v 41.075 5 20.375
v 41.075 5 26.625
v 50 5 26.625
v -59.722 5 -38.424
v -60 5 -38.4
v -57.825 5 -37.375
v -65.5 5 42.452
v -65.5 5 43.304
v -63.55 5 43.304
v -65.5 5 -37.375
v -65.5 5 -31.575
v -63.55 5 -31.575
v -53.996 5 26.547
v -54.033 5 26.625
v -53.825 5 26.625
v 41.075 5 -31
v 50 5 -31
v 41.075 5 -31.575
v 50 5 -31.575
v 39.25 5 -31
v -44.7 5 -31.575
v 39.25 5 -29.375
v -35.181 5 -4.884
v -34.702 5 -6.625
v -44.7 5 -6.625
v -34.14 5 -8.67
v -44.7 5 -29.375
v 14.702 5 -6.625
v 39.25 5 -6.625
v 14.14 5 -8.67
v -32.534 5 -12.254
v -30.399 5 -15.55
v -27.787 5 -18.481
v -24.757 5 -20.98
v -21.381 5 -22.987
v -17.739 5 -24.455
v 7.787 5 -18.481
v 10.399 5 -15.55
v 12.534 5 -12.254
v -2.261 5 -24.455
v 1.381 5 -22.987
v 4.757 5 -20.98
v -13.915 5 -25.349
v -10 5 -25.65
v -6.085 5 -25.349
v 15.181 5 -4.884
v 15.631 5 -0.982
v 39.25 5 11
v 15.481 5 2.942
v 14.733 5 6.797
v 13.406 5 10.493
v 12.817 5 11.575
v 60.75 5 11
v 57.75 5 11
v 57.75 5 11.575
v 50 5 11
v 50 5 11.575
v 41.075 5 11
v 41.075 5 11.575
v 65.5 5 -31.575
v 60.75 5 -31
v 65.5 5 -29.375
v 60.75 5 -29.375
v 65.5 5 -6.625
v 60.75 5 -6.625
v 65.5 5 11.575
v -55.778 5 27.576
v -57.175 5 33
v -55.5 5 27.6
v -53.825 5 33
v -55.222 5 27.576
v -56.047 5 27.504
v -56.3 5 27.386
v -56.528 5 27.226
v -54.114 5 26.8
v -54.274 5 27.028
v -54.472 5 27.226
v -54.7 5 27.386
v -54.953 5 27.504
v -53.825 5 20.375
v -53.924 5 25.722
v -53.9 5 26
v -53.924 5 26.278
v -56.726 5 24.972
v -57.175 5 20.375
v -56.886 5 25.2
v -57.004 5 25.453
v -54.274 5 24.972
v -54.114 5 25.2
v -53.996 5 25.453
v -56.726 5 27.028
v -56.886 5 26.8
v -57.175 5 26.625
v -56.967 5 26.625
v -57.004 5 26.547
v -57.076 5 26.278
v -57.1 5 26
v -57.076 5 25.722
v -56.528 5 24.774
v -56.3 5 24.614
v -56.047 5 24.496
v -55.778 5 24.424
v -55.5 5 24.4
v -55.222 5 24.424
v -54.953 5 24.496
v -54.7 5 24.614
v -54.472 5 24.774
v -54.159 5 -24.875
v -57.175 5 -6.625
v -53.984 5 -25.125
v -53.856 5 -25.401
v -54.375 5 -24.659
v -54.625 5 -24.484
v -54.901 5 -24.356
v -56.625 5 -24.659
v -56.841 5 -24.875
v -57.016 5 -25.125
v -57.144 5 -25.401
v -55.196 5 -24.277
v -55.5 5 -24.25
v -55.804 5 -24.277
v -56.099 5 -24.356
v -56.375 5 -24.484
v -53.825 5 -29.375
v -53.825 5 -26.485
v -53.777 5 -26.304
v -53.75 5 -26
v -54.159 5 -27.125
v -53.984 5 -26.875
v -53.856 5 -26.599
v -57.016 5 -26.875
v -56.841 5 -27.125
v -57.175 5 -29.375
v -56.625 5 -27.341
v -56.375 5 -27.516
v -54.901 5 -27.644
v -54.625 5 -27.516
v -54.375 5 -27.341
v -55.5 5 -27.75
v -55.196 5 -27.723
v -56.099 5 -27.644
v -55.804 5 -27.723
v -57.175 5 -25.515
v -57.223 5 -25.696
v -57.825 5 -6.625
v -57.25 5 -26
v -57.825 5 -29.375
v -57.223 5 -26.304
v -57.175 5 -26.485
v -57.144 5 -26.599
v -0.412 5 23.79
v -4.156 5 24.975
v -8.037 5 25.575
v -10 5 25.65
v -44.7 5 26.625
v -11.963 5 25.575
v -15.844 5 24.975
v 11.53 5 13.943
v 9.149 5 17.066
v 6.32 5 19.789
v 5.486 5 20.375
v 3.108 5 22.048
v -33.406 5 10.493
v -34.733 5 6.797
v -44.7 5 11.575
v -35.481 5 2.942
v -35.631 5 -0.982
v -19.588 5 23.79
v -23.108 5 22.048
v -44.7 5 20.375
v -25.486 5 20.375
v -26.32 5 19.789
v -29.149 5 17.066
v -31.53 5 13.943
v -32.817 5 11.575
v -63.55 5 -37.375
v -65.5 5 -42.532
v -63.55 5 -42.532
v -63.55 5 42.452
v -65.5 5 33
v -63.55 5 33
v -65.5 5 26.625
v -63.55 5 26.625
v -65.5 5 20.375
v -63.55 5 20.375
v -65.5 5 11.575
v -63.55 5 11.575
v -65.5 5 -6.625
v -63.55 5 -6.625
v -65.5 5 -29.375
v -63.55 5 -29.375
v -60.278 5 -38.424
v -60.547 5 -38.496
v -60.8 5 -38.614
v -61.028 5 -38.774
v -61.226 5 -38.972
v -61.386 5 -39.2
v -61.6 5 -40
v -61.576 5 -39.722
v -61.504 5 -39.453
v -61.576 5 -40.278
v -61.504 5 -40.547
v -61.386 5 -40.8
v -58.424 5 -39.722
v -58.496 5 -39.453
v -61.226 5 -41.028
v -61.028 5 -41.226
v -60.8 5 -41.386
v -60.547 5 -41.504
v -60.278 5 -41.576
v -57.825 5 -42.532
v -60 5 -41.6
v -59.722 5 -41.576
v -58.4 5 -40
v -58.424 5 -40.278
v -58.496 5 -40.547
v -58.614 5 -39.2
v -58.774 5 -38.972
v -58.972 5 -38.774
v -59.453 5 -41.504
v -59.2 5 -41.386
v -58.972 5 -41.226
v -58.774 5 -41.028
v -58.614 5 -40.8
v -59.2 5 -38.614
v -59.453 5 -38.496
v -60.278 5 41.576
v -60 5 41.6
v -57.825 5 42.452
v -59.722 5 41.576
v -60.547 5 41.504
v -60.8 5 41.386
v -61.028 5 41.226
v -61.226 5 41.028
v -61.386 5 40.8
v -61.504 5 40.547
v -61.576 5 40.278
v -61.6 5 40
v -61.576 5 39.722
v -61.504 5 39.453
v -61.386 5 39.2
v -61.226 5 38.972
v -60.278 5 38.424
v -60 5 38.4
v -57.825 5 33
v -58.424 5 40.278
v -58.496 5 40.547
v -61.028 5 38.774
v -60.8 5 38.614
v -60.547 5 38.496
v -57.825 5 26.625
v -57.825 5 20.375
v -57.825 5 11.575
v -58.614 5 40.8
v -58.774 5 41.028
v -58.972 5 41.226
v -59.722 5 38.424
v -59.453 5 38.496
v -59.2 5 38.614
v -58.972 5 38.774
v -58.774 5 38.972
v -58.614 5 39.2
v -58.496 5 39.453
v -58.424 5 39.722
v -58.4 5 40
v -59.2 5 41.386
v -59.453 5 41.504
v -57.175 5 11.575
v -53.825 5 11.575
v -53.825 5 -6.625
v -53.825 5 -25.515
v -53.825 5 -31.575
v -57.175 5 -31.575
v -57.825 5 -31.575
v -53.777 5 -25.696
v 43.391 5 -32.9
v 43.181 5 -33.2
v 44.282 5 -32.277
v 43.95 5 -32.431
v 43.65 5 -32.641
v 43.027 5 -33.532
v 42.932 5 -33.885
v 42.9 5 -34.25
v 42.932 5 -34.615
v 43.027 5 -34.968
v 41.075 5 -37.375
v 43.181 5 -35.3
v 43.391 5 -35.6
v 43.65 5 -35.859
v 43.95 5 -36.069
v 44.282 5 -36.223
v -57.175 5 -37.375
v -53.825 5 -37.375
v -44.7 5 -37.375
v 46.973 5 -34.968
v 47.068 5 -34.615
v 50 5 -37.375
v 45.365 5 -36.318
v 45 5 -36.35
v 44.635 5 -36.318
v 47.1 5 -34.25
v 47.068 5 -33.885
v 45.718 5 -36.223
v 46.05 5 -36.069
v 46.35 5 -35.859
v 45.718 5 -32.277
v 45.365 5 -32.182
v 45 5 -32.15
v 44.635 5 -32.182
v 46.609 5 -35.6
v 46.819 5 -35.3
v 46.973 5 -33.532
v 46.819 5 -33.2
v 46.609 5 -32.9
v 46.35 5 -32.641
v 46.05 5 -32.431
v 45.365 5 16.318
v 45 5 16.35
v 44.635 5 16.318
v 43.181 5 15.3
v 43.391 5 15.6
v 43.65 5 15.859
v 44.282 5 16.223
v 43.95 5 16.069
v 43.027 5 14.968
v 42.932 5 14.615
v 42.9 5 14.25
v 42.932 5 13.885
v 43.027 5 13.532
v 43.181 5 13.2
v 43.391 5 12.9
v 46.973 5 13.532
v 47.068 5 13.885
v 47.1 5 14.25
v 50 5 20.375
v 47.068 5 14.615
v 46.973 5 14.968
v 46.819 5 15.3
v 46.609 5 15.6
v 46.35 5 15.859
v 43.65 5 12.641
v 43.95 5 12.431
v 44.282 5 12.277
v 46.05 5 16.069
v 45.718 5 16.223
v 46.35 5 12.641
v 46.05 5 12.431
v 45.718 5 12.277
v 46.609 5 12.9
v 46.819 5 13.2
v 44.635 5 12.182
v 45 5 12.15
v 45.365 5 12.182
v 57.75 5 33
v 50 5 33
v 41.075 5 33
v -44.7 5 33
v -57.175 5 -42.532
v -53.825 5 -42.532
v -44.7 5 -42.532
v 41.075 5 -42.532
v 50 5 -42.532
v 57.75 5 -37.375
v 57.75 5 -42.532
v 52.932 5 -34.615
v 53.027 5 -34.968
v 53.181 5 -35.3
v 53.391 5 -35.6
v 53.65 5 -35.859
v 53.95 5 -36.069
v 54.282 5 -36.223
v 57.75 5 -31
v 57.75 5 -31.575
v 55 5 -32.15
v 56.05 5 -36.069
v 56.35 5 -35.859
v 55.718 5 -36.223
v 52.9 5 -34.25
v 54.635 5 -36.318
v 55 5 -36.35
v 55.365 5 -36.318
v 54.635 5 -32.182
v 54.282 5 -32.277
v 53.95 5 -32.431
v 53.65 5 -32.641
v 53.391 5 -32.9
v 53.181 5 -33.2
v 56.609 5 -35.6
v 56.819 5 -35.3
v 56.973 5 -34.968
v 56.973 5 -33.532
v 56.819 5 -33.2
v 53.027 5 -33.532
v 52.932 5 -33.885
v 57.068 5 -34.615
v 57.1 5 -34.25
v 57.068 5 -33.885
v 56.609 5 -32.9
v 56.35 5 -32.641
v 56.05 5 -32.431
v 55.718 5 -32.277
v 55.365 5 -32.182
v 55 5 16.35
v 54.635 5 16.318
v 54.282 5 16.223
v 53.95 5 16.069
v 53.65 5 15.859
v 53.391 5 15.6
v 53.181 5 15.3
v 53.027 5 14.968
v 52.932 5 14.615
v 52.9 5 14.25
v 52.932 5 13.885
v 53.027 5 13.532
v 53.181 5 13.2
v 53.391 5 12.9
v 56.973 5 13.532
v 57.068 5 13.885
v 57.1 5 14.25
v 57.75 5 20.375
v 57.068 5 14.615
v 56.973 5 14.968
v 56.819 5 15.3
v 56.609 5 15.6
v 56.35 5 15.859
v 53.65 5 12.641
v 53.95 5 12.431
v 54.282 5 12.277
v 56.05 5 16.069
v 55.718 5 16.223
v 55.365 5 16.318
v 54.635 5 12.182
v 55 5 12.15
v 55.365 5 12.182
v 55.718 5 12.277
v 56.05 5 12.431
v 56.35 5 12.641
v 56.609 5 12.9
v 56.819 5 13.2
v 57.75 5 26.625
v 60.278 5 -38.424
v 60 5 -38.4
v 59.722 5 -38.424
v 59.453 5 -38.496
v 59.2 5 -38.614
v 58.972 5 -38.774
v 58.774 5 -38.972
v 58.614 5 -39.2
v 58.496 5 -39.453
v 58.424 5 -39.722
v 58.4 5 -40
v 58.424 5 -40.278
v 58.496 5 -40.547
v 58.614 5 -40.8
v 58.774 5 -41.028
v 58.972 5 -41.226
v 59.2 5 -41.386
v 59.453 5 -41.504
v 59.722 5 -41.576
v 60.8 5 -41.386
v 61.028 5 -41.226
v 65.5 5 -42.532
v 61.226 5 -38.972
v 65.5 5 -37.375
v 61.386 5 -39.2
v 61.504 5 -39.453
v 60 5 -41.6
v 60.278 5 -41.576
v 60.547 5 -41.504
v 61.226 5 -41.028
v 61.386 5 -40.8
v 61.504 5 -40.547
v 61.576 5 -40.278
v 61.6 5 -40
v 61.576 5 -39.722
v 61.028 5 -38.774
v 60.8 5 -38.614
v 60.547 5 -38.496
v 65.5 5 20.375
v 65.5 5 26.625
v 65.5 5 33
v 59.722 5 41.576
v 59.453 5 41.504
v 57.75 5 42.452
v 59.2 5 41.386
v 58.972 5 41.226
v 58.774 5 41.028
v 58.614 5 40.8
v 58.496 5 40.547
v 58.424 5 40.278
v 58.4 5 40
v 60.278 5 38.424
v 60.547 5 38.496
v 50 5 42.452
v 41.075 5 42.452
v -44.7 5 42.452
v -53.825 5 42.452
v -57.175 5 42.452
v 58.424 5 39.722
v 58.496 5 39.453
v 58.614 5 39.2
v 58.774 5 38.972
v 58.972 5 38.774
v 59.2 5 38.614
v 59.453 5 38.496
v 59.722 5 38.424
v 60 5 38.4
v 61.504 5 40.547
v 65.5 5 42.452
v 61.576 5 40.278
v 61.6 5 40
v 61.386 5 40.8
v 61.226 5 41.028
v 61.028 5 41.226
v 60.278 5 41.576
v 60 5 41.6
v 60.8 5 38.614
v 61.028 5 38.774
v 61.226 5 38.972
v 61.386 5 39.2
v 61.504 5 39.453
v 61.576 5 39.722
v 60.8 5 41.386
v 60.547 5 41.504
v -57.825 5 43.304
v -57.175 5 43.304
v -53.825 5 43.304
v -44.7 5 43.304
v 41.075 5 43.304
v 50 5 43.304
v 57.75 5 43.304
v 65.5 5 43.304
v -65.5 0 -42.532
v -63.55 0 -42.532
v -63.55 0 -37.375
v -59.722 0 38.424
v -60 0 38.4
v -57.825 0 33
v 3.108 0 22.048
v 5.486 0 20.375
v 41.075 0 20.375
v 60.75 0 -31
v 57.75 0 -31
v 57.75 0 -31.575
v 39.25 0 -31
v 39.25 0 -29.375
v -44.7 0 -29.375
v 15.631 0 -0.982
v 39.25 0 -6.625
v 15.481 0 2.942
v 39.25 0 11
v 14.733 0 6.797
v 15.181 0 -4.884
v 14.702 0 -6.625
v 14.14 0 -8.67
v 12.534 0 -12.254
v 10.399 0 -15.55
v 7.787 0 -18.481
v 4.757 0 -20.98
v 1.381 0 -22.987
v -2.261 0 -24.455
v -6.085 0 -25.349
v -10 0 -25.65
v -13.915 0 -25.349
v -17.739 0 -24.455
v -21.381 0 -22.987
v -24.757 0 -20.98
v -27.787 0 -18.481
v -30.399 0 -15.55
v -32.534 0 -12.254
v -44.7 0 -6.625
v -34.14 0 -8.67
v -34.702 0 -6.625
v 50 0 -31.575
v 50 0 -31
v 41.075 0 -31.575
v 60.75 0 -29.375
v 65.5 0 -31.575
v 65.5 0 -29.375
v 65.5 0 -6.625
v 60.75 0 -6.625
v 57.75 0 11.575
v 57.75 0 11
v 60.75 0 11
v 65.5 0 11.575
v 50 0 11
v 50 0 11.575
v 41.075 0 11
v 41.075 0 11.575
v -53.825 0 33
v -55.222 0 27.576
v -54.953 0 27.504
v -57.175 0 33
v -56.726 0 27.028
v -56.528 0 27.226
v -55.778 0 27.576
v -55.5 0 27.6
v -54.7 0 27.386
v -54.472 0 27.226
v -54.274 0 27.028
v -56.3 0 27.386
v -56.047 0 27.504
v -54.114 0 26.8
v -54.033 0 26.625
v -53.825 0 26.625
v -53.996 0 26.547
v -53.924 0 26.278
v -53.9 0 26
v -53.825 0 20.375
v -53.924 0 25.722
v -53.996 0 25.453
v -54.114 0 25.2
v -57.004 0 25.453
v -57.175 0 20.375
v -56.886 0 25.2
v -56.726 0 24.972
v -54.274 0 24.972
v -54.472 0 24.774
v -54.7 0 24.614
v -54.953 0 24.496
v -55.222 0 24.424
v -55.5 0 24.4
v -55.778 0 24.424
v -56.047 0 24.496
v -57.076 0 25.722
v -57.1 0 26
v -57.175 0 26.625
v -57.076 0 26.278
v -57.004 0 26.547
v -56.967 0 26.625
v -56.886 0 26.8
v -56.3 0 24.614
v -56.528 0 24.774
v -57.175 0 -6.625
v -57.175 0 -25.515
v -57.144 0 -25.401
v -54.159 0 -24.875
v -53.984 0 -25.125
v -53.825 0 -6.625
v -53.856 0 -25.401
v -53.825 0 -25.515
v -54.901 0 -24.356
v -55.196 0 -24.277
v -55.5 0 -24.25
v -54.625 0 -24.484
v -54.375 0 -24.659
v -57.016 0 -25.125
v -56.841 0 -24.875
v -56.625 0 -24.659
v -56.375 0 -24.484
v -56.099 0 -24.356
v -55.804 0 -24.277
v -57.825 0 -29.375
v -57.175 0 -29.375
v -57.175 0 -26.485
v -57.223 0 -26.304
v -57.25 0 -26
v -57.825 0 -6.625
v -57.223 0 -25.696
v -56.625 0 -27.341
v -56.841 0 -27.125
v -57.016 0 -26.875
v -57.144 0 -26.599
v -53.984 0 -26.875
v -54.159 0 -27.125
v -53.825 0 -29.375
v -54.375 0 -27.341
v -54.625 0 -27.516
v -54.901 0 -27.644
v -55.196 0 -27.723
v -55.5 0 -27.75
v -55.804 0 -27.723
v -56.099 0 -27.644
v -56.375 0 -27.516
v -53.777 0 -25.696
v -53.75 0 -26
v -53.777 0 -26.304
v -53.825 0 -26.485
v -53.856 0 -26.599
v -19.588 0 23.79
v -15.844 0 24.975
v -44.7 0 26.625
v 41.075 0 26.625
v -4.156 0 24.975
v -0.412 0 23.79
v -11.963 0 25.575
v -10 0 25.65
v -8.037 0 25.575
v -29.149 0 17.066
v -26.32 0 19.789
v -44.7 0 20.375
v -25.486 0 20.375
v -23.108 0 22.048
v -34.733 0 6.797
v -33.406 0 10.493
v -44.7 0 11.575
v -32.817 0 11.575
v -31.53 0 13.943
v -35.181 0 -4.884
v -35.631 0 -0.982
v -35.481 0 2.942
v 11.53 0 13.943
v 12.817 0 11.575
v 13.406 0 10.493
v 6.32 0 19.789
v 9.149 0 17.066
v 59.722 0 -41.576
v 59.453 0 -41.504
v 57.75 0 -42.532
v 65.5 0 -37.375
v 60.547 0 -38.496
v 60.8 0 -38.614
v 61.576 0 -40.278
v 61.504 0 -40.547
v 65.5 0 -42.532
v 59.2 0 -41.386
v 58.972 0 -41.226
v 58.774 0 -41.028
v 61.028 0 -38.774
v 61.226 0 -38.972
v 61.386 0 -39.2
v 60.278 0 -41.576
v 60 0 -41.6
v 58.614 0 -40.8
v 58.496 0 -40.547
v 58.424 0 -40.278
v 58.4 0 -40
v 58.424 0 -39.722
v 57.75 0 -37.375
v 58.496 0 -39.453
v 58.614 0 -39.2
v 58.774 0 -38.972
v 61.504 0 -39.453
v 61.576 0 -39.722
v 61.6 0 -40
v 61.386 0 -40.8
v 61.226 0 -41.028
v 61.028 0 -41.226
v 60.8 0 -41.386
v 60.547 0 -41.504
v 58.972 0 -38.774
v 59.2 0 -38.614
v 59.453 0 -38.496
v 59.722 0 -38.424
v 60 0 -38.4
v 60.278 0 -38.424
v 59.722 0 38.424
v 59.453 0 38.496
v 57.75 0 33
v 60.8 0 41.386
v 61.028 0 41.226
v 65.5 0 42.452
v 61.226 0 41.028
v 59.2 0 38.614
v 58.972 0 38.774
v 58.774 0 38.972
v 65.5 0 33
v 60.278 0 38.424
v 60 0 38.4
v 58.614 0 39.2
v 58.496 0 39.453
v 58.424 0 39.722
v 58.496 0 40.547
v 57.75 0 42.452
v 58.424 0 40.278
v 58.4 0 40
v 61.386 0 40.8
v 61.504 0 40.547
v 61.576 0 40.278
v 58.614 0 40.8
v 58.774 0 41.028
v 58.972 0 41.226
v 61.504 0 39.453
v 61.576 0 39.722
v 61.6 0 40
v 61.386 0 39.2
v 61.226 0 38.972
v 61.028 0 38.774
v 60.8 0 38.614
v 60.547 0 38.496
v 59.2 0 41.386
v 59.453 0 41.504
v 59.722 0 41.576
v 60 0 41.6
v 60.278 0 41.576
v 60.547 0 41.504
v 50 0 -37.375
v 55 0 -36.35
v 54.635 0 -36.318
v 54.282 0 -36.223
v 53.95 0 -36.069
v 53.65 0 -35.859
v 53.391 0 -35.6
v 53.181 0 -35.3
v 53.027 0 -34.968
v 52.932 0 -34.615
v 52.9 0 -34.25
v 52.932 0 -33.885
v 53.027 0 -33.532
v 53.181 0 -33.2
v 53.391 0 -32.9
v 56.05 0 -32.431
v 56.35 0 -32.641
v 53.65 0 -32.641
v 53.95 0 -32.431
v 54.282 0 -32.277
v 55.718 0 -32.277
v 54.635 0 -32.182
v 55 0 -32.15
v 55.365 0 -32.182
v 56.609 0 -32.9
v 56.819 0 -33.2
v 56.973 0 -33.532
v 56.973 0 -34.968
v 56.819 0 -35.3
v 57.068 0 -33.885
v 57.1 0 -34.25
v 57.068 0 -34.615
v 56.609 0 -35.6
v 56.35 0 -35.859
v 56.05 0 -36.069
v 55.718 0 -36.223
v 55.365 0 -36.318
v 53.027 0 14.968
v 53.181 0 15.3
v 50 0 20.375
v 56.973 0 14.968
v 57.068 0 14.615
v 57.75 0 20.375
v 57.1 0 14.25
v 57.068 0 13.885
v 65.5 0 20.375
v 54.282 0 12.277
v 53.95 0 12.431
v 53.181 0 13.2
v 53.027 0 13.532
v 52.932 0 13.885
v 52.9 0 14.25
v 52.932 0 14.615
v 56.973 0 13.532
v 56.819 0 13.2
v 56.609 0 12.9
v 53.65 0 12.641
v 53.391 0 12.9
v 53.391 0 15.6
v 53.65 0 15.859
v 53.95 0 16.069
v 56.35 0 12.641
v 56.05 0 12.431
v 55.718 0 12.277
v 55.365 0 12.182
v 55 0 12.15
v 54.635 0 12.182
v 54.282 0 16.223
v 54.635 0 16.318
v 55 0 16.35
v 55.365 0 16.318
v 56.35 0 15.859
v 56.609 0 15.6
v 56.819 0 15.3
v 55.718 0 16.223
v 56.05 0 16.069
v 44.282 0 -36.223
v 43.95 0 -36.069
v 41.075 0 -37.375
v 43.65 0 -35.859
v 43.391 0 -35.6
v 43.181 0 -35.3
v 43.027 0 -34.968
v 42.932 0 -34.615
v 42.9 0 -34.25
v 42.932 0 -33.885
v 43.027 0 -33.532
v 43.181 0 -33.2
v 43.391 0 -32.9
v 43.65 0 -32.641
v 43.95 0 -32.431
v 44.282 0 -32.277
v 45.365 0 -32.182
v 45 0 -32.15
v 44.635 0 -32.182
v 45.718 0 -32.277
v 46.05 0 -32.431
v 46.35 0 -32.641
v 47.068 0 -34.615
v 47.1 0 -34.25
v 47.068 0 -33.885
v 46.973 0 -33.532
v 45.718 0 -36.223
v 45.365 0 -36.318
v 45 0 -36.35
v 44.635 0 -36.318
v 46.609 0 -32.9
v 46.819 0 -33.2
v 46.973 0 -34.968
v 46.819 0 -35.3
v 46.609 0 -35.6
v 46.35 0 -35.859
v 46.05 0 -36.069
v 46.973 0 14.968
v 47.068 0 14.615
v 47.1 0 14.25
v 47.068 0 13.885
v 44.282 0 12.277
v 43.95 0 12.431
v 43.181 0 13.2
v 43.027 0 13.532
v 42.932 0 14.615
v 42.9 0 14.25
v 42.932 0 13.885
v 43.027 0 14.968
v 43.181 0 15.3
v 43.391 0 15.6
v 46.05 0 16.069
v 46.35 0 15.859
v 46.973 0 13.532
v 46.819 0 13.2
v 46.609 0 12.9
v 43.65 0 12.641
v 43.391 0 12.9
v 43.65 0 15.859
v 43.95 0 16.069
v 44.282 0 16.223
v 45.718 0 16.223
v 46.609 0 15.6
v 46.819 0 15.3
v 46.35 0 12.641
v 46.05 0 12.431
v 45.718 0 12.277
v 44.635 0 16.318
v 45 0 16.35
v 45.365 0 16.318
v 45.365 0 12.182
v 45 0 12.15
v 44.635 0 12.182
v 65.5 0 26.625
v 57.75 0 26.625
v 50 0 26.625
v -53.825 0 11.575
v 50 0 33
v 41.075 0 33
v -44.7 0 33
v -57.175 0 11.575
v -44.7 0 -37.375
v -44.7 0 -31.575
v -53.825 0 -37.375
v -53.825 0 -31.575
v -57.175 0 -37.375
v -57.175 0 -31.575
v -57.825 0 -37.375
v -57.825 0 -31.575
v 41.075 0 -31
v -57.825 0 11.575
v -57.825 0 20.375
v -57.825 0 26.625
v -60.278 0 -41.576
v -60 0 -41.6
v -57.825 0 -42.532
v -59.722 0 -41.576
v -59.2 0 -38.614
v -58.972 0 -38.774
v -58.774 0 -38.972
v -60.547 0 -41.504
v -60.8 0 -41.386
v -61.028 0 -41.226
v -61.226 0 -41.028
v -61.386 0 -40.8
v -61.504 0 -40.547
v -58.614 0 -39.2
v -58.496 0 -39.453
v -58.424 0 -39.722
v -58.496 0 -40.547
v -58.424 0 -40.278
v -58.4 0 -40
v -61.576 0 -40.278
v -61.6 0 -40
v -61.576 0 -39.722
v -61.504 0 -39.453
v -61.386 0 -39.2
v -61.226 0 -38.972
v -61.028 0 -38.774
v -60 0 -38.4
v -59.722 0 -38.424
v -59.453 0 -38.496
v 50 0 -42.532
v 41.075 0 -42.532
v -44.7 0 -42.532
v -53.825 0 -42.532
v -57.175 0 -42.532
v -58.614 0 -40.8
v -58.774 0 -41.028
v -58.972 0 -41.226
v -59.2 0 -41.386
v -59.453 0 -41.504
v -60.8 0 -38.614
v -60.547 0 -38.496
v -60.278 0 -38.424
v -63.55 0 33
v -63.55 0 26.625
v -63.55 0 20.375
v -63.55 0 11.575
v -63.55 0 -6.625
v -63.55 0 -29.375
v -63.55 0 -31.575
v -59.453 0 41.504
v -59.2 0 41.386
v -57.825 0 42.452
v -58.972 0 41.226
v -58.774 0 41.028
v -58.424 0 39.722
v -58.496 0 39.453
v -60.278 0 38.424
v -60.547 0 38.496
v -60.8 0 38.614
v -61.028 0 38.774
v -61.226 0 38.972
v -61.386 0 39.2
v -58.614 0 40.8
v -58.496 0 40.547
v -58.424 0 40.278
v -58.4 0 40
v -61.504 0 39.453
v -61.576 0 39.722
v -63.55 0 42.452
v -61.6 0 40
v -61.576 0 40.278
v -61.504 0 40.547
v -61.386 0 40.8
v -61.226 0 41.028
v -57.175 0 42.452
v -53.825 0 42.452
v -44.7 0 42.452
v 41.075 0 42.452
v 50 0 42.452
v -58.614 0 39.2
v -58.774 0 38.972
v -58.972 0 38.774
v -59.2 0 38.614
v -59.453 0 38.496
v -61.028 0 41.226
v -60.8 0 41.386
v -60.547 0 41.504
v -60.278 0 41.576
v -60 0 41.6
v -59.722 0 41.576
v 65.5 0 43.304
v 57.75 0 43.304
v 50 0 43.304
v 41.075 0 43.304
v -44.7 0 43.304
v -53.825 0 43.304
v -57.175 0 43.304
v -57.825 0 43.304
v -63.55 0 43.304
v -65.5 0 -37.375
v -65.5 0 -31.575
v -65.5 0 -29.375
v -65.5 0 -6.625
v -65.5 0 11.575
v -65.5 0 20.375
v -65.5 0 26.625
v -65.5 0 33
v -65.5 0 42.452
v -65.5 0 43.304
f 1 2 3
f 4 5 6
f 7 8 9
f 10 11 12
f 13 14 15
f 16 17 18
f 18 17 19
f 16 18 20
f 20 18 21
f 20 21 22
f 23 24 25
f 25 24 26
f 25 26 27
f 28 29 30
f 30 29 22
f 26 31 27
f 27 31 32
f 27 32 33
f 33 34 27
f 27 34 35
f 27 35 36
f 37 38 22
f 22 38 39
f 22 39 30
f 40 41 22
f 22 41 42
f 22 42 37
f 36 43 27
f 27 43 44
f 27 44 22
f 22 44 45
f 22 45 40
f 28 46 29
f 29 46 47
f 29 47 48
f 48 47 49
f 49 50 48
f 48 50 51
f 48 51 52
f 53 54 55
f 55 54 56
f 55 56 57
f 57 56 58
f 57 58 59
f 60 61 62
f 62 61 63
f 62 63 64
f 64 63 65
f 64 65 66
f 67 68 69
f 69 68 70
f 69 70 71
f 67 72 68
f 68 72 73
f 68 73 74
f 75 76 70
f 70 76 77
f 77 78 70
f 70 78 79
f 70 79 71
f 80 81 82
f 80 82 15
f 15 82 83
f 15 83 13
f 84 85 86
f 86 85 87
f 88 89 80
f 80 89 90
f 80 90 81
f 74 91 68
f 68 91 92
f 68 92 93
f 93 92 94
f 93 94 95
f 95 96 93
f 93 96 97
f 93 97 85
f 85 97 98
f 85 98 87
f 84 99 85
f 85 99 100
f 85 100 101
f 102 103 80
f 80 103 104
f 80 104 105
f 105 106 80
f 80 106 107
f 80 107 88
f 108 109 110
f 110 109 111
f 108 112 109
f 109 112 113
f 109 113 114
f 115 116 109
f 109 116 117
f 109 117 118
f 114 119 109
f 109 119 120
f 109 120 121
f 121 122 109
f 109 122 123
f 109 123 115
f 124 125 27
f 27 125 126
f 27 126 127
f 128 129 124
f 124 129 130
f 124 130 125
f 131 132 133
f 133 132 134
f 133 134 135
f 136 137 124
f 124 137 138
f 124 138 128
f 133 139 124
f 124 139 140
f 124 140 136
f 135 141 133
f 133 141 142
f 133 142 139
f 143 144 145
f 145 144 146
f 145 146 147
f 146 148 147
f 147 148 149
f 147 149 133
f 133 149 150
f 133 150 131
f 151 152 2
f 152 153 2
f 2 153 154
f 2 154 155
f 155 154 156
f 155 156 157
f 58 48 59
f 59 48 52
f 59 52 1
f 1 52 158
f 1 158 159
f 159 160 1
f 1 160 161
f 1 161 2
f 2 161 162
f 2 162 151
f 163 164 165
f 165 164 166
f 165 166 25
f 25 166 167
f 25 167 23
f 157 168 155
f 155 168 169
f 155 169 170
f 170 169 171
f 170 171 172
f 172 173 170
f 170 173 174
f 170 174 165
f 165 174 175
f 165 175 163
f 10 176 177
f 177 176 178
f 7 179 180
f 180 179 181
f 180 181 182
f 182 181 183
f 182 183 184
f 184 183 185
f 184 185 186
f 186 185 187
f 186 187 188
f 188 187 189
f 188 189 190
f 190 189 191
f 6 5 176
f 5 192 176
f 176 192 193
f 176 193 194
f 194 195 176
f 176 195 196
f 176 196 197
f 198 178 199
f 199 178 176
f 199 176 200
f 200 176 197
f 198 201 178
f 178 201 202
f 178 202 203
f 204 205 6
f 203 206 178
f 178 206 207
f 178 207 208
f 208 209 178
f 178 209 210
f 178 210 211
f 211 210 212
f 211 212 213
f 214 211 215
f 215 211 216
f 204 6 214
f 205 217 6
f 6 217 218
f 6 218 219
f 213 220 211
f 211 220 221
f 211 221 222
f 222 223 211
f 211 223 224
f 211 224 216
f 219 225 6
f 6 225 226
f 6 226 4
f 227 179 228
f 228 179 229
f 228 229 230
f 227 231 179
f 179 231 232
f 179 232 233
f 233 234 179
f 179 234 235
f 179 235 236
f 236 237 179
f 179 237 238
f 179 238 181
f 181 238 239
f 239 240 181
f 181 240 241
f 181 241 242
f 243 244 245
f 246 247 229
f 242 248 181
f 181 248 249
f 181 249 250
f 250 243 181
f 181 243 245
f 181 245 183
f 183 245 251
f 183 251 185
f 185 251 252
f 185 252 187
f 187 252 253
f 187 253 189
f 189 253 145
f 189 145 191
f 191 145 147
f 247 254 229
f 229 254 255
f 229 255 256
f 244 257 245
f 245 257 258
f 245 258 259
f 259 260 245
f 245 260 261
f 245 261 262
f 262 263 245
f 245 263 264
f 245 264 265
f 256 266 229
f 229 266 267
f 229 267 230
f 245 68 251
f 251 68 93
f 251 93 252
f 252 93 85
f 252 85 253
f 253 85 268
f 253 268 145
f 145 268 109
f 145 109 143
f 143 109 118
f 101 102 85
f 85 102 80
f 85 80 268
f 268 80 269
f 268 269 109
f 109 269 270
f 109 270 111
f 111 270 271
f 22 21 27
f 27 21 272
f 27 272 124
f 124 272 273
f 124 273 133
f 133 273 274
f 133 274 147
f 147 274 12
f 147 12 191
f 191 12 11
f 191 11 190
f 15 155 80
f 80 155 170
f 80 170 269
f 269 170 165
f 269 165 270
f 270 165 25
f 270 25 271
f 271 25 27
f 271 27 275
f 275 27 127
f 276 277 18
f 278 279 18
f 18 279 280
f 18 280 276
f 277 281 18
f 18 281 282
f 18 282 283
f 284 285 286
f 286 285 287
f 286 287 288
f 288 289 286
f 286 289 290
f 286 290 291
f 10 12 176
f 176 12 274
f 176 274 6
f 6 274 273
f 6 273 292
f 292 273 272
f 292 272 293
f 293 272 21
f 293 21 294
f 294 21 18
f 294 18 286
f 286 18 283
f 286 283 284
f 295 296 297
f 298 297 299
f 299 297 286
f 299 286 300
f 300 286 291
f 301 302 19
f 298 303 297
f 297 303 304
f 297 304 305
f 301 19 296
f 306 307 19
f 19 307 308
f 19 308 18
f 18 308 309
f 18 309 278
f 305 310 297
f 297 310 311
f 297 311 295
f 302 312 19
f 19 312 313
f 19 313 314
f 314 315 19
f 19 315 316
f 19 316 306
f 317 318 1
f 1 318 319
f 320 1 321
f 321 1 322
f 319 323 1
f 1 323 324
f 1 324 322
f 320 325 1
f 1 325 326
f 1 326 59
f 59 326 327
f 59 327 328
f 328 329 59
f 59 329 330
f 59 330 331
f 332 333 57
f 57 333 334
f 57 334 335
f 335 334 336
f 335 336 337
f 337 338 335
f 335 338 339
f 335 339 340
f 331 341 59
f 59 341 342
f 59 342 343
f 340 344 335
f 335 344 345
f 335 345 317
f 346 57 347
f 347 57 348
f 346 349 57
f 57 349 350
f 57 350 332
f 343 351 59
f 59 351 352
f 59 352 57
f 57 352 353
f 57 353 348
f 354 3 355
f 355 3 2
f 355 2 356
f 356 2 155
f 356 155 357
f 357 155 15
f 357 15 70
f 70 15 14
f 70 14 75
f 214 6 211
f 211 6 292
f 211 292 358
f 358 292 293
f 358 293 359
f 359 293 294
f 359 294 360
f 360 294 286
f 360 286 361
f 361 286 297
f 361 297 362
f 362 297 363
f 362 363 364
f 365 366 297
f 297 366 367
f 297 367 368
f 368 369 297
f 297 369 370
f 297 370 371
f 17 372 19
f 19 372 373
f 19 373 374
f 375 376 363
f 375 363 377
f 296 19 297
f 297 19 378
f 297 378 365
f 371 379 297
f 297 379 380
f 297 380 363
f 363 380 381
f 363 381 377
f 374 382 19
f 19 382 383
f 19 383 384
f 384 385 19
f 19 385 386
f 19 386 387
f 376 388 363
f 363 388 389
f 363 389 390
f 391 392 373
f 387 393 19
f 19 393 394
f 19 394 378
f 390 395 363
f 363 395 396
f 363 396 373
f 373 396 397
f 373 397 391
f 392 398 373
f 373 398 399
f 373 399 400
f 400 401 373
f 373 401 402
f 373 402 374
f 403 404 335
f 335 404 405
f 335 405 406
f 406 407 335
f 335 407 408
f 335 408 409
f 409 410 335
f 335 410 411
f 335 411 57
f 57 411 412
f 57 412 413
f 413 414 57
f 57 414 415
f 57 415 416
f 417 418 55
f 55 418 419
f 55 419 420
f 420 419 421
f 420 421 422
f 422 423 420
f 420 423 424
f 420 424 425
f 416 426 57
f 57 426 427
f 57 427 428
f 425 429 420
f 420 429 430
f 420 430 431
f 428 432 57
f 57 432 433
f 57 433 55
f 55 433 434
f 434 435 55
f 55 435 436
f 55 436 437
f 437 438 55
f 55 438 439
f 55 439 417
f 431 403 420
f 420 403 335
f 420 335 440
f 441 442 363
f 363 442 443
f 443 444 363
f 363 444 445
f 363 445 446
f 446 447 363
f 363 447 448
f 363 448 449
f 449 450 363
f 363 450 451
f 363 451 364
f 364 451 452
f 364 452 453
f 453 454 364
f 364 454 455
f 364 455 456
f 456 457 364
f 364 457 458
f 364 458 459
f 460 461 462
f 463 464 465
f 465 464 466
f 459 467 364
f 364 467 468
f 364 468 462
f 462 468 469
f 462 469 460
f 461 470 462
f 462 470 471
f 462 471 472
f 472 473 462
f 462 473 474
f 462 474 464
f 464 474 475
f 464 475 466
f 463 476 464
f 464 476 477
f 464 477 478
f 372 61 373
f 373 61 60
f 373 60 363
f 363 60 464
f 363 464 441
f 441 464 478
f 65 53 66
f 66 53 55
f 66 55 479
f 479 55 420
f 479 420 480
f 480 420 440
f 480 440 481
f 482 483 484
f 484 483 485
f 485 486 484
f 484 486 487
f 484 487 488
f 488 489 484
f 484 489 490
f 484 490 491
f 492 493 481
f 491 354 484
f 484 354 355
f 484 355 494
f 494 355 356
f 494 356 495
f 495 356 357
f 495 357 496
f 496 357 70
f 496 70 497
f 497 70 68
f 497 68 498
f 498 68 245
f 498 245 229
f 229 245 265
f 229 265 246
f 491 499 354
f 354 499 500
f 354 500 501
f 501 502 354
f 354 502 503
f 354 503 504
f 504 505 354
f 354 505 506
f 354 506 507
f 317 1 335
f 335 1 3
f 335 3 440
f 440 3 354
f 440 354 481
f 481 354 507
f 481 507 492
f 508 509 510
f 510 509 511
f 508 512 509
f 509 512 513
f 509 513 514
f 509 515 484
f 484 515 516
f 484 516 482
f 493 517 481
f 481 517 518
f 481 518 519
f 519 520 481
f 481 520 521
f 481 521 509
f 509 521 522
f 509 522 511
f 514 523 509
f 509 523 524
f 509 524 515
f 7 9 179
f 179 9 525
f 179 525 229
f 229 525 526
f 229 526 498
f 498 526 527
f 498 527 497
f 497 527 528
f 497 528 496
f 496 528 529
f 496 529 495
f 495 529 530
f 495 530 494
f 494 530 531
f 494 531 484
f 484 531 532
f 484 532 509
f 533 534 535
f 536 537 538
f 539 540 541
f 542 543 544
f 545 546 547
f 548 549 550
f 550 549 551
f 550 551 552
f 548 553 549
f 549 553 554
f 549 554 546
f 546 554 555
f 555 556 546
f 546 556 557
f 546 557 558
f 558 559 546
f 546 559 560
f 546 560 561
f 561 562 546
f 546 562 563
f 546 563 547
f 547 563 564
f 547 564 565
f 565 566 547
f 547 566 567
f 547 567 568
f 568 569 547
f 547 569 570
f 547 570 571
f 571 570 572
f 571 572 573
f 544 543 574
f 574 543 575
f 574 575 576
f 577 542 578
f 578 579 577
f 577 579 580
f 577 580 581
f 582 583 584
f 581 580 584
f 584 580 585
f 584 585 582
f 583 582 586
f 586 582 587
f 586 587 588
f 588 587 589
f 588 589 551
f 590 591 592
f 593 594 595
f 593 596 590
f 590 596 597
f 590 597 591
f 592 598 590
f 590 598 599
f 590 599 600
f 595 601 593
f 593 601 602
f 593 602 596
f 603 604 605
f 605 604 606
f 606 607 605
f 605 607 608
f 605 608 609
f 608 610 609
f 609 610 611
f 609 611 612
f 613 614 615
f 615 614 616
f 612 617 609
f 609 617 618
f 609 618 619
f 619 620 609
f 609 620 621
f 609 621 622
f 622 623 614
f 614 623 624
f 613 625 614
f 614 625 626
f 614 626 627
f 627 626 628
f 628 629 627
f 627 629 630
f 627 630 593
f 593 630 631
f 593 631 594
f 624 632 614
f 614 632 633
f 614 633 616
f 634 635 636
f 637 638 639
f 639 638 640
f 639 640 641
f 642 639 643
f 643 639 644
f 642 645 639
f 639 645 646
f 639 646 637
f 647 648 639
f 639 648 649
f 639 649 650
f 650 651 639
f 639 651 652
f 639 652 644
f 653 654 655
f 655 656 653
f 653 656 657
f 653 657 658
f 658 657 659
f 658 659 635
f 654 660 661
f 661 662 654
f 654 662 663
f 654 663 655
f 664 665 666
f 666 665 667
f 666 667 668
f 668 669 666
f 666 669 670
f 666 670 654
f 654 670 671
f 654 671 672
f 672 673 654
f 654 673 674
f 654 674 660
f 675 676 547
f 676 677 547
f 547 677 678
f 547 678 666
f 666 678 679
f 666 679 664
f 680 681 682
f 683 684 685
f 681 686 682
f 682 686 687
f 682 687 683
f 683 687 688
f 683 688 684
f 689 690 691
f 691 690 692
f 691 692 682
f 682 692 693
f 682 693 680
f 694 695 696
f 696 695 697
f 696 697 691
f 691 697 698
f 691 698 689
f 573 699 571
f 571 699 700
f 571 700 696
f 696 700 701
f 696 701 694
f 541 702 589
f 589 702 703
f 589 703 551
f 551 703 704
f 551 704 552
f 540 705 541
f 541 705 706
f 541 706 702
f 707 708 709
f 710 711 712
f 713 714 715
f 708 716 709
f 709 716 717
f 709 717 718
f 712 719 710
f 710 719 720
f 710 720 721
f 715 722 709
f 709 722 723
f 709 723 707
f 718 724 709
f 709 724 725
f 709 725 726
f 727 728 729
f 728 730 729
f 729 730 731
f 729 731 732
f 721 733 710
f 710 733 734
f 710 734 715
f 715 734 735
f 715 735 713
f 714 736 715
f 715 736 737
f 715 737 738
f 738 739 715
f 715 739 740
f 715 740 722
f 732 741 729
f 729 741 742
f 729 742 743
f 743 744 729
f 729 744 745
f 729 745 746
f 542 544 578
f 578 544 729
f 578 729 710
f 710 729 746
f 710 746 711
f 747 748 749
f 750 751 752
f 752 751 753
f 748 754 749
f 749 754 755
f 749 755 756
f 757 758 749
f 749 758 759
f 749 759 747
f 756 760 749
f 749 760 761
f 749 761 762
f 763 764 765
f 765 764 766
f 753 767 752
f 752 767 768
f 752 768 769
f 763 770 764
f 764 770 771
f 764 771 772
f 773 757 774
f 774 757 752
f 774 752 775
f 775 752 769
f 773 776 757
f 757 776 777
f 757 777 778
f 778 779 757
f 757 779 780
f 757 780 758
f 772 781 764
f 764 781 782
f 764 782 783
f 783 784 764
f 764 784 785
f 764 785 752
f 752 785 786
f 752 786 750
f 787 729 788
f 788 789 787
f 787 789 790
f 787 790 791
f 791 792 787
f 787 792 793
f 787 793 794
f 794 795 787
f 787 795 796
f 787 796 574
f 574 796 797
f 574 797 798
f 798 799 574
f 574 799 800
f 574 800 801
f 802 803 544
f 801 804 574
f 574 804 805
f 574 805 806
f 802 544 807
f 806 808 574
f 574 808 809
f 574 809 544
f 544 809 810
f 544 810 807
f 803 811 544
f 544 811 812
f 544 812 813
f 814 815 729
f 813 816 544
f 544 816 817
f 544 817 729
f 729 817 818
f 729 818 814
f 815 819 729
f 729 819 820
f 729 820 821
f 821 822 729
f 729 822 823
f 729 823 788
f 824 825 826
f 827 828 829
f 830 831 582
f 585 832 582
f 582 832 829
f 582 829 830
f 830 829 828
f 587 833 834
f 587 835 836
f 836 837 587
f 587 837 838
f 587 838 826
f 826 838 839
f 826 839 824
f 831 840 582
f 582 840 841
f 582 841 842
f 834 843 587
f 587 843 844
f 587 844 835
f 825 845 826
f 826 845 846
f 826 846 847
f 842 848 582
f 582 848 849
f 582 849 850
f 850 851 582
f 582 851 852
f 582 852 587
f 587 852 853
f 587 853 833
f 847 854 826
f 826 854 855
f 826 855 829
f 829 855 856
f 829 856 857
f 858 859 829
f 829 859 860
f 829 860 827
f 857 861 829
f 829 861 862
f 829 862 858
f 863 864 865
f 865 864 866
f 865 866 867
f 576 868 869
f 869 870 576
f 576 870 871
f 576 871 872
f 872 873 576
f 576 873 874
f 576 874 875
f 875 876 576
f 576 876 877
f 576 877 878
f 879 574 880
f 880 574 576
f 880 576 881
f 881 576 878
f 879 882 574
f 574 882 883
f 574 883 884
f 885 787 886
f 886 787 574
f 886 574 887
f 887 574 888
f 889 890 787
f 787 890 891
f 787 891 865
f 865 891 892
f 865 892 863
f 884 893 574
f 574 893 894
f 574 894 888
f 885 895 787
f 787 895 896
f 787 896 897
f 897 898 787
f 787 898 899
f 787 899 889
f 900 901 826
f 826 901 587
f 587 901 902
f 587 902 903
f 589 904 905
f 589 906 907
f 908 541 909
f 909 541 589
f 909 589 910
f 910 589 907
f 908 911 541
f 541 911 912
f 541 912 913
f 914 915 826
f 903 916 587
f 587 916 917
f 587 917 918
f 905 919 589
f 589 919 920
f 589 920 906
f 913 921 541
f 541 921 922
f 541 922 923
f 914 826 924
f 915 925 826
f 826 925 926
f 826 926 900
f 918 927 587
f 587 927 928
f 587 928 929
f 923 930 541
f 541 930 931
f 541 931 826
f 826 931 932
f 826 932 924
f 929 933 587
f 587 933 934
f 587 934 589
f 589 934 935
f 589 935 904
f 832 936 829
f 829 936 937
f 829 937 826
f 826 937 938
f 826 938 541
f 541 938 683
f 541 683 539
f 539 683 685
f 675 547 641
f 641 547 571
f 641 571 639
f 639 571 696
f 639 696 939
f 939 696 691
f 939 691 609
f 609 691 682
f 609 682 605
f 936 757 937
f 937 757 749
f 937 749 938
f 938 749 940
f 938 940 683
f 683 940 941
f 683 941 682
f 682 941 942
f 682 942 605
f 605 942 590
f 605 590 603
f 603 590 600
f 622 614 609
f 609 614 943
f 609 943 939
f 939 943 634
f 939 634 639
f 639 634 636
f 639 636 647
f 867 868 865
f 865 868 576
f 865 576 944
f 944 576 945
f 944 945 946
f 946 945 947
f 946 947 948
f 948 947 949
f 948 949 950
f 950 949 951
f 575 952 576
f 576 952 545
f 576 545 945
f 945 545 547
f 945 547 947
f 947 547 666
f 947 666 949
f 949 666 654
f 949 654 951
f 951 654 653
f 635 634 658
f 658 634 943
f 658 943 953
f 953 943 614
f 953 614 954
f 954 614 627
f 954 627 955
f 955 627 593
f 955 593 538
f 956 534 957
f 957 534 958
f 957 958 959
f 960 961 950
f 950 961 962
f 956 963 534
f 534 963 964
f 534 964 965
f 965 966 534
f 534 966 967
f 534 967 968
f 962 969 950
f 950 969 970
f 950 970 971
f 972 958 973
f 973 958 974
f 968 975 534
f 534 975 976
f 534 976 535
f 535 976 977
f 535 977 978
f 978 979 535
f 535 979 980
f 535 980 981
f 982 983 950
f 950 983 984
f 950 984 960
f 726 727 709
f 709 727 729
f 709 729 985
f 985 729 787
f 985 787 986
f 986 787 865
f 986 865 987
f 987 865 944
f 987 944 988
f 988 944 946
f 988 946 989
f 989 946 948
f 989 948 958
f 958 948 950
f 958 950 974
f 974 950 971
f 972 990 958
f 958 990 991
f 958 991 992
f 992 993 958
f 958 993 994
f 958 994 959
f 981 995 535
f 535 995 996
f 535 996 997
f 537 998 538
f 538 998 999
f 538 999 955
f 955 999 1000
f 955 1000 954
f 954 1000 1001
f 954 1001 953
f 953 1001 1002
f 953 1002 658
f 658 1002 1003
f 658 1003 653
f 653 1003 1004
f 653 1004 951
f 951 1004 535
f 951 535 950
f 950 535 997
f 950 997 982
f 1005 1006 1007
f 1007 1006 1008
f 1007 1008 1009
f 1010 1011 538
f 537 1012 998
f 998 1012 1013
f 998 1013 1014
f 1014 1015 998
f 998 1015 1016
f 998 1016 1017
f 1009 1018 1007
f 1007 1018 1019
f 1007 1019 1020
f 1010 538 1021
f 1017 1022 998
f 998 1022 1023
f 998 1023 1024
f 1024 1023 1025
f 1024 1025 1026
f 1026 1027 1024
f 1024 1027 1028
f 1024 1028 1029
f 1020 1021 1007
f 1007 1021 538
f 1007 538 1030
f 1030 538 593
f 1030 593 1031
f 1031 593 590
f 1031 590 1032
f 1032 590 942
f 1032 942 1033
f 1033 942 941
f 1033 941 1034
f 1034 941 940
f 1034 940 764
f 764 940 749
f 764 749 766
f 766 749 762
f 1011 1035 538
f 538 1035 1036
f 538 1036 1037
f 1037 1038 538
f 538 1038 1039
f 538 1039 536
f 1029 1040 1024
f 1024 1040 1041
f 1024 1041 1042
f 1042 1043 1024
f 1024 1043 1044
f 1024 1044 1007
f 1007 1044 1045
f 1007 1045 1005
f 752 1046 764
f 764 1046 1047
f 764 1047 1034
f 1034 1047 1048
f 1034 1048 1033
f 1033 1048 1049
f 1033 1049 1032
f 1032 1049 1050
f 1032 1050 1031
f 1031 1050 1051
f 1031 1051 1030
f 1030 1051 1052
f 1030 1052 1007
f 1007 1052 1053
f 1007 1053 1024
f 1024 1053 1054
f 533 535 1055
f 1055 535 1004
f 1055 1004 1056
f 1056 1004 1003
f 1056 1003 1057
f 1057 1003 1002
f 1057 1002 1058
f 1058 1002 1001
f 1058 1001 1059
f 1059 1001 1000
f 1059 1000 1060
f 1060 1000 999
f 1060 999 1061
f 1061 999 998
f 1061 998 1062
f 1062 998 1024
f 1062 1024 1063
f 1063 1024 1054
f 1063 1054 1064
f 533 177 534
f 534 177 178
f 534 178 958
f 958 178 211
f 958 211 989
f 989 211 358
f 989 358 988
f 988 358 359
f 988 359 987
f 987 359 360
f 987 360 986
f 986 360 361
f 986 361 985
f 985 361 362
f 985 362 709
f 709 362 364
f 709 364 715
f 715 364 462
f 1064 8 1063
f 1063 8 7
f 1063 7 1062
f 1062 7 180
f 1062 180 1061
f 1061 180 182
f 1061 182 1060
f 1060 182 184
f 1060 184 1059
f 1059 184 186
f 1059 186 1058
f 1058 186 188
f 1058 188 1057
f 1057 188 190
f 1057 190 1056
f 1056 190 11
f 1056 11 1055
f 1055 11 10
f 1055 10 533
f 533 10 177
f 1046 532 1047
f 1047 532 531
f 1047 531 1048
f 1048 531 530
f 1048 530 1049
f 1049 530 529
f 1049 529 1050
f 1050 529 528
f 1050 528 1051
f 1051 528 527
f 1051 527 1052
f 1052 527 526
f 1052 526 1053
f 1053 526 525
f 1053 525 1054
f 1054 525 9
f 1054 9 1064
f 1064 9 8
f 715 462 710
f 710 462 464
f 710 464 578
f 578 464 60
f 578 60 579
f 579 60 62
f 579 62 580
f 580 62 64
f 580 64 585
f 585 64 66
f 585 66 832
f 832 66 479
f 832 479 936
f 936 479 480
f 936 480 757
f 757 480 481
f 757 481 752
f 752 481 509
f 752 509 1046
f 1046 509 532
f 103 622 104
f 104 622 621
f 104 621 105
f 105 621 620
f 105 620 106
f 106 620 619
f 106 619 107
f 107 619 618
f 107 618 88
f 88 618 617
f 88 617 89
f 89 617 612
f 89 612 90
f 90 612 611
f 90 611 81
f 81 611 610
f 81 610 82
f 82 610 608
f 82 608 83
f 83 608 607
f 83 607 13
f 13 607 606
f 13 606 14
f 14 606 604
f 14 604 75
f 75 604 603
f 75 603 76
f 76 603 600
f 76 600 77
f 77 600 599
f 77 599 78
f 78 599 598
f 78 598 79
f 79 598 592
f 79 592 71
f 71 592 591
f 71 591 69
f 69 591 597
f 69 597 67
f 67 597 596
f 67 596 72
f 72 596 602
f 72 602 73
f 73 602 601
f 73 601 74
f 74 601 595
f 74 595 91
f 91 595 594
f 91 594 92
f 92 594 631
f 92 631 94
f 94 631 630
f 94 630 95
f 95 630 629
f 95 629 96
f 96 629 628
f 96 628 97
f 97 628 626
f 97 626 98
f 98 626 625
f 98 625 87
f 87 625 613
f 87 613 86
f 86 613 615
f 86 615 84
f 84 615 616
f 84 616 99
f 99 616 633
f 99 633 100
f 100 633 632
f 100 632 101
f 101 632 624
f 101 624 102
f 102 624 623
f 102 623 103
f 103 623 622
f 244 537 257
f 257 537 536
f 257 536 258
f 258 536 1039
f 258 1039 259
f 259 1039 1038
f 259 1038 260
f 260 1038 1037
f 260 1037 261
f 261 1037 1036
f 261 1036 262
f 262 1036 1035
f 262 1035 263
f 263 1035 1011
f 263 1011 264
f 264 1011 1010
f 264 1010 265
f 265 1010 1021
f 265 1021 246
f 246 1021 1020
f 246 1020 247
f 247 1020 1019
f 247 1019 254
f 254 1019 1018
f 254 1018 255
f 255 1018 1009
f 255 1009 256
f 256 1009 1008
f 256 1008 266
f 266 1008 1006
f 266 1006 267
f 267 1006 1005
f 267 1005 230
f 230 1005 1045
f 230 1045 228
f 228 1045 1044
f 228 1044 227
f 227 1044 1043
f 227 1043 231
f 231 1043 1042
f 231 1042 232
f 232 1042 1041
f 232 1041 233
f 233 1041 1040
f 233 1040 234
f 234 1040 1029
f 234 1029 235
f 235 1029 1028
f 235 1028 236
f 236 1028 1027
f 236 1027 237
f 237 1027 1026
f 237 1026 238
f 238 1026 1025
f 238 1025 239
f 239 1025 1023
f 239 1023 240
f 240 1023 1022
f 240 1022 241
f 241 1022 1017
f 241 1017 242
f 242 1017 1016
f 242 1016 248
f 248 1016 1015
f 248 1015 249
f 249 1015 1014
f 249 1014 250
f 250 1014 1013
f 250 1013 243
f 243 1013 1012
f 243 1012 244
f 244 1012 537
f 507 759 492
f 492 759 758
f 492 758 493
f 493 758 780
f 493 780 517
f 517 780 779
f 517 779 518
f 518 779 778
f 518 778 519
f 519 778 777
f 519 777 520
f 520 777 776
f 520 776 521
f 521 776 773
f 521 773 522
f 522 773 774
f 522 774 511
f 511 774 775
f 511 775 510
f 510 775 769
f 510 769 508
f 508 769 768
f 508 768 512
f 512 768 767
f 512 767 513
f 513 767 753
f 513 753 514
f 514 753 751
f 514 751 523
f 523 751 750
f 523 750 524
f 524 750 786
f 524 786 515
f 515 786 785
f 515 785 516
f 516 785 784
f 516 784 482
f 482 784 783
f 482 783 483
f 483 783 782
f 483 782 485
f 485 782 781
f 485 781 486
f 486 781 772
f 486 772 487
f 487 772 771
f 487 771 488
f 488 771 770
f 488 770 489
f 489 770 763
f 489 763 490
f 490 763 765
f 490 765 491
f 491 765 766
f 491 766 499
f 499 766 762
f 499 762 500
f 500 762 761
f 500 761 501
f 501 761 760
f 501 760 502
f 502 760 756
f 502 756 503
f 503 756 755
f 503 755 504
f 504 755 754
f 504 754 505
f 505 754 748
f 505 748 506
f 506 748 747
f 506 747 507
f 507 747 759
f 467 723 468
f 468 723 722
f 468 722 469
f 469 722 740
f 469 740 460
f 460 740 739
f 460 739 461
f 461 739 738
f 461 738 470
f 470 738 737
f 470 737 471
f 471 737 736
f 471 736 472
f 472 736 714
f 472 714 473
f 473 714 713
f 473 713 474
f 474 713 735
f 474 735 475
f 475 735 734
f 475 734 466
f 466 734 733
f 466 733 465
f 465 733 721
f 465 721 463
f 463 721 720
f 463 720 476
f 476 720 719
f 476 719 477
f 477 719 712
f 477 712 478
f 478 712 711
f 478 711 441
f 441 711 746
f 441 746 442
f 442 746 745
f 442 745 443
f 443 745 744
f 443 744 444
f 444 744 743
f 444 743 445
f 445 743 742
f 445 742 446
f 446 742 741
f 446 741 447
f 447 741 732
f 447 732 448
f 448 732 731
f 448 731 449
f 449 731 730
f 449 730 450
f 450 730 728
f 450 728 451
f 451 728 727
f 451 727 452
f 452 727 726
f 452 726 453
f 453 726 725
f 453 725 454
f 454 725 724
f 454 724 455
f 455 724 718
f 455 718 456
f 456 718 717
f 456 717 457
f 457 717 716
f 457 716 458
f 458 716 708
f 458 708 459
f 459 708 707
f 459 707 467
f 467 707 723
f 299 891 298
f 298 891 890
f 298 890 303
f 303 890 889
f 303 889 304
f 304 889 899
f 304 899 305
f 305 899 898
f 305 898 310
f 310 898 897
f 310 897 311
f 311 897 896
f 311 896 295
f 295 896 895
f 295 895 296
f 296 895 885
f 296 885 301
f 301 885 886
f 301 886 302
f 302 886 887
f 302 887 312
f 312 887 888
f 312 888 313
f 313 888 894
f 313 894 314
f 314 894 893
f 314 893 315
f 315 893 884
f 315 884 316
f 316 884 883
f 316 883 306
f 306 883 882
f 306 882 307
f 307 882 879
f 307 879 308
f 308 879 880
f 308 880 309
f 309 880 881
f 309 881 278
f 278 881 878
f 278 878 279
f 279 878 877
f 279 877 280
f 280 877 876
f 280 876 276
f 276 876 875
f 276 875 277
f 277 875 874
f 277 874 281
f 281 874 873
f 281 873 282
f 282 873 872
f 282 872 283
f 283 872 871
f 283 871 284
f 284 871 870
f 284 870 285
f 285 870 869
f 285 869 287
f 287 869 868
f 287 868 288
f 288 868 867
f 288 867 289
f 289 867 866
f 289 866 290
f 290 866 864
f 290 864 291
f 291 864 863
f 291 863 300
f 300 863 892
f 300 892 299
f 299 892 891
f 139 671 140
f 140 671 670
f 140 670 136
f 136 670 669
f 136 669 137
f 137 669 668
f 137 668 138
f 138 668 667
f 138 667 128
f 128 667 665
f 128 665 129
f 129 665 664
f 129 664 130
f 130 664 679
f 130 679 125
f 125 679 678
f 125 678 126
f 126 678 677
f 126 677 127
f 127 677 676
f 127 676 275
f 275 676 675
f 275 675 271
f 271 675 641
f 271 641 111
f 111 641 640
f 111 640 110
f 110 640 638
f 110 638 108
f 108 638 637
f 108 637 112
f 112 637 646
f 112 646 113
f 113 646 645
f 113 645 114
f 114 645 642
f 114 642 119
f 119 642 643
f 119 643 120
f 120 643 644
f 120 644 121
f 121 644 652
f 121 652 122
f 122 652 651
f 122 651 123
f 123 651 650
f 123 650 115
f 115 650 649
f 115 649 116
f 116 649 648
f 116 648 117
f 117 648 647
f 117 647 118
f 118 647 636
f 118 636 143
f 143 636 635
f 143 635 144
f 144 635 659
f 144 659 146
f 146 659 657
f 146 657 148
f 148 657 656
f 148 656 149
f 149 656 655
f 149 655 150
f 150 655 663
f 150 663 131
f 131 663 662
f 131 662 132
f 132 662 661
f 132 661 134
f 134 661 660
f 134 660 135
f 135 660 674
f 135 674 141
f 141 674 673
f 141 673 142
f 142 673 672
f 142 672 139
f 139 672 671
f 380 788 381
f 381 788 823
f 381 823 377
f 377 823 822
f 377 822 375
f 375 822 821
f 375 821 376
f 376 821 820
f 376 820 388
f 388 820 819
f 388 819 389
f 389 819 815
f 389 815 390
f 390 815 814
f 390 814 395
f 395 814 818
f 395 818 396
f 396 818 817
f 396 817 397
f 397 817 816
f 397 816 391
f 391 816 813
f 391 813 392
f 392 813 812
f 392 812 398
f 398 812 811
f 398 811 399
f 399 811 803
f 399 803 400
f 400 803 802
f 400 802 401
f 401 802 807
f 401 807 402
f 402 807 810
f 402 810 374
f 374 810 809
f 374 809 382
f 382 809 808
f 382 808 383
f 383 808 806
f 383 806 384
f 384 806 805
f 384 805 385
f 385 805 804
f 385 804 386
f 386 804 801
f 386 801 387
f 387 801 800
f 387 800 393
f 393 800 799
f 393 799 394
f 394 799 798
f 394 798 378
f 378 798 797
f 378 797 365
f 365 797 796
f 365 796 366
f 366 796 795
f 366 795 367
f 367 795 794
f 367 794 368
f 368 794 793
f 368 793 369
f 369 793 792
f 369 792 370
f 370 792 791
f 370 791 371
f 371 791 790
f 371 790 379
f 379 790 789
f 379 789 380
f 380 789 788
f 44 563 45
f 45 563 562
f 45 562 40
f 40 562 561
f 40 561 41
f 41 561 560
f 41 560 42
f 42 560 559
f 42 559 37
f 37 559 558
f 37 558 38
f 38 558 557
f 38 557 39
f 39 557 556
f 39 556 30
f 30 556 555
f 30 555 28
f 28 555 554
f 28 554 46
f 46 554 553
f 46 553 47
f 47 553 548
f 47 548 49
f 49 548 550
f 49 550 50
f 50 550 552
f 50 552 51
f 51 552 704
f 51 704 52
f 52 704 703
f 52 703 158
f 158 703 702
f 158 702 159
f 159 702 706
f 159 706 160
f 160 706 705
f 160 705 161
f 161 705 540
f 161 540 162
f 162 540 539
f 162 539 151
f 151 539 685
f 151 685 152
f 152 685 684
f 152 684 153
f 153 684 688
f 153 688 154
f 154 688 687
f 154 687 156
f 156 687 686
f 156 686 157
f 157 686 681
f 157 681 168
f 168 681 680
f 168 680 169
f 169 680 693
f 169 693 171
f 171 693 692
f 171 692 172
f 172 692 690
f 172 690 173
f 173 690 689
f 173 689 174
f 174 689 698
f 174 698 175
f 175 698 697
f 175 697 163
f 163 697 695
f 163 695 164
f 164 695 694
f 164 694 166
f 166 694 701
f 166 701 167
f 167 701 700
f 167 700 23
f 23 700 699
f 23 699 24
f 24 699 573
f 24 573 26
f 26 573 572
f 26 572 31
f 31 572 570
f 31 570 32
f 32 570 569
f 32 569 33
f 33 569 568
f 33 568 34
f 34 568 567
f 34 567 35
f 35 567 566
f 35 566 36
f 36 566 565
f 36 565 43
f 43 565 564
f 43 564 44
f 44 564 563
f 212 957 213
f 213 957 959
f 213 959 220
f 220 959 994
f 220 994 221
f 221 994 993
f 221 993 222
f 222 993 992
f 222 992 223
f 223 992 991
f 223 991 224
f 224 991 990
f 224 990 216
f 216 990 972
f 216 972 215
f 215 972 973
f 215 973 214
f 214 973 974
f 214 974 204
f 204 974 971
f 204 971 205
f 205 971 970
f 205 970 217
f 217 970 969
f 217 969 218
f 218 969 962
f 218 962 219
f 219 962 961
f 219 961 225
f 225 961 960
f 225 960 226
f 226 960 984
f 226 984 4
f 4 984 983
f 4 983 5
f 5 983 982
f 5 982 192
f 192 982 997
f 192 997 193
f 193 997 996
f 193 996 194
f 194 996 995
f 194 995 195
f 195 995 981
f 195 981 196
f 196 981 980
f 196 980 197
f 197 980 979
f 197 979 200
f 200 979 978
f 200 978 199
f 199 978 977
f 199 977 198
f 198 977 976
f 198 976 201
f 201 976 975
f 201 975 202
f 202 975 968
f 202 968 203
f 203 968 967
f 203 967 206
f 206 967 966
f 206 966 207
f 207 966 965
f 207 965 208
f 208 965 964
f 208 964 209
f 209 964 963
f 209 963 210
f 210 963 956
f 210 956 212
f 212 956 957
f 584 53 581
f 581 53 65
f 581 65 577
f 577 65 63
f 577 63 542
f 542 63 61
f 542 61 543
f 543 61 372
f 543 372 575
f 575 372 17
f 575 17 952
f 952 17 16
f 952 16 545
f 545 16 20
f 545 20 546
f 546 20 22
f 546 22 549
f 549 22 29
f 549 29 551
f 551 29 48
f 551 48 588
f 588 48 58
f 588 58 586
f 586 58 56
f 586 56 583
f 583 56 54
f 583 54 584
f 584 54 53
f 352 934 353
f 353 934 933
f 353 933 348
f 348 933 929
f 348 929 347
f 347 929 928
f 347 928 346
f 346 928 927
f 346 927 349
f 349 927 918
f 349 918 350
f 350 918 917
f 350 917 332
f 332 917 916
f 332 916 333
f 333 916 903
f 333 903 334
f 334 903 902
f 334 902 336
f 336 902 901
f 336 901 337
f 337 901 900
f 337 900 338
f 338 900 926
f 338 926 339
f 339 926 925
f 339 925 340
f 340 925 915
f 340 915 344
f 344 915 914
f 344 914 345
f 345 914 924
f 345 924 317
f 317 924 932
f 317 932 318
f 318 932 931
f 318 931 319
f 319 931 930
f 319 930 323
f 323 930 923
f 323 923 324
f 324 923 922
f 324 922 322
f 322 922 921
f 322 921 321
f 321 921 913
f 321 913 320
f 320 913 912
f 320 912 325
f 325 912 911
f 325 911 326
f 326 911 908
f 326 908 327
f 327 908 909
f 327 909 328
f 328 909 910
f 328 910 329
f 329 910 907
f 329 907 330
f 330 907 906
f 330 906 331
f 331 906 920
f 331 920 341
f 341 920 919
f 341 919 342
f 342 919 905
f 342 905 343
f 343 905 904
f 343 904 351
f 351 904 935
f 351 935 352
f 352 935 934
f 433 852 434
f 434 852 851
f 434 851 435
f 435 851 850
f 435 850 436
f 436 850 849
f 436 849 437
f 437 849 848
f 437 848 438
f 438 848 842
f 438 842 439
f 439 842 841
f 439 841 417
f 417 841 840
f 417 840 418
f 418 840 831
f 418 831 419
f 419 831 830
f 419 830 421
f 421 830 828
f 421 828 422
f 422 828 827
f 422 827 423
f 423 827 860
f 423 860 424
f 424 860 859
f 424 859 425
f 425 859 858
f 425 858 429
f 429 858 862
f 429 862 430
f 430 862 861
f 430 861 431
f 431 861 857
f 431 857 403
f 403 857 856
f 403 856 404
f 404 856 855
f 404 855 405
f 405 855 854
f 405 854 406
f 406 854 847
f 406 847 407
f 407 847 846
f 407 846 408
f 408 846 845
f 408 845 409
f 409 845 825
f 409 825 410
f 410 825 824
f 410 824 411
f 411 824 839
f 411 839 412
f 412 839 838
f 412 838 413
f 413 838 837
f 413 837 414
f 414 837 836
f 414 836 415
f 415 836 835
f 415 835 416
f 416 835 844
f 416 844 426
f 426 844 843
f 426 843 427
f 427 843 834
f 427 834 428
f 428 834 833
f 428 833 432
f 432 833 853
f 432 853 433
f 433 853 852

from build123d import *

# Parameters (mm, degrees)
SKETCH1_W           = 131
SKETCH1_H           = 85.8357277
SKETCH1_R           = 1.6
SKETCH1_R_2         = 2.1
SKETCH1_R_3         = 1.75
SKETCH1_R_4         = 25.65
SKETCH1_W_2         = 21.5
SKETCH1_H_2         = 42
BOSS_EXTRUDE1_DEPTH = 5


with BuildPart() as part:
    # Sketch1 → Boss-Extrude1 (new body)
    with BuildSketch(Plane(origin=(0, 0, 0), x_dir=(1, 0, 0), z_dir=(0, 1, 0))):
        with Locations((0, -0.385889954)):
            Rectangle(SKETCH1_W, SKETCH1_H)
        with Locations(Location((-55.5, -26, 0), (0, 0, 270))):
            Circle(SKETCH1_R, mode=Mode.SUBTRACT)
        with Locations(Location((-60, -40, 0), (0, 0, 270))):
            Circle(SKETCH1_R, mode=Mode.SUBTRACT)
        with Locations(Location((60, -40, 0), (0, 0, 270))):
            Circle(SKETCH1_R, mode=Mode.SUBTRACT)
        with Locations(Location((60, 40, 0), (0, 0, 270))):
            Circle(SKETCH1_R, mode=Mode.SUBTRACT)
        with Locations(Location((45, 34.25, 0), (0, 0, 270))):
            Circle(SKETCH1_R_2, mode=Mode.SUBTRACT)
        with Locations(Location((55, 34.25, 0), (0, 0, 270))):
            Circle(SKETCH1_R_2, mode=Mode.SUBTRACT)
        with Locations(Location((-55.5, 26, 0), (0, 0, 270))):
            Circle(SKETCH1_R_3, mode=Mode.SUBTRACT)
        with Locations(Location((45, -14.25, 0), (0, 0, 270))):
            Circle(SKETCH1_R_2, mode=Mode.SUBTRACT)
        with Locations(Location((-10, 0, 0), (0, 0, 270))):
            Circle(SKETCH1_R_4, mode=Mode.SUBTRACT)
        with Locations(Location((-60, 40, 0), (0, 0, 270))):
            Circle(SKETCH1_R, mode=Mode.SUBTRACT)
        with Locations(Location((55, -14.25, 0), (0, 0, 270))):
            Circle(SKETCH1_R_2, mode=Mode.SUBTRACT)
        with Locations((50, 10)):
            Rectangle(SKETCH1_W_2, SKETCH1_H_2, mode=Mode.SUBTRACT)
    extrude(amount=BOSS_EXTRUDE1_DEPTH)


solid = part.part
